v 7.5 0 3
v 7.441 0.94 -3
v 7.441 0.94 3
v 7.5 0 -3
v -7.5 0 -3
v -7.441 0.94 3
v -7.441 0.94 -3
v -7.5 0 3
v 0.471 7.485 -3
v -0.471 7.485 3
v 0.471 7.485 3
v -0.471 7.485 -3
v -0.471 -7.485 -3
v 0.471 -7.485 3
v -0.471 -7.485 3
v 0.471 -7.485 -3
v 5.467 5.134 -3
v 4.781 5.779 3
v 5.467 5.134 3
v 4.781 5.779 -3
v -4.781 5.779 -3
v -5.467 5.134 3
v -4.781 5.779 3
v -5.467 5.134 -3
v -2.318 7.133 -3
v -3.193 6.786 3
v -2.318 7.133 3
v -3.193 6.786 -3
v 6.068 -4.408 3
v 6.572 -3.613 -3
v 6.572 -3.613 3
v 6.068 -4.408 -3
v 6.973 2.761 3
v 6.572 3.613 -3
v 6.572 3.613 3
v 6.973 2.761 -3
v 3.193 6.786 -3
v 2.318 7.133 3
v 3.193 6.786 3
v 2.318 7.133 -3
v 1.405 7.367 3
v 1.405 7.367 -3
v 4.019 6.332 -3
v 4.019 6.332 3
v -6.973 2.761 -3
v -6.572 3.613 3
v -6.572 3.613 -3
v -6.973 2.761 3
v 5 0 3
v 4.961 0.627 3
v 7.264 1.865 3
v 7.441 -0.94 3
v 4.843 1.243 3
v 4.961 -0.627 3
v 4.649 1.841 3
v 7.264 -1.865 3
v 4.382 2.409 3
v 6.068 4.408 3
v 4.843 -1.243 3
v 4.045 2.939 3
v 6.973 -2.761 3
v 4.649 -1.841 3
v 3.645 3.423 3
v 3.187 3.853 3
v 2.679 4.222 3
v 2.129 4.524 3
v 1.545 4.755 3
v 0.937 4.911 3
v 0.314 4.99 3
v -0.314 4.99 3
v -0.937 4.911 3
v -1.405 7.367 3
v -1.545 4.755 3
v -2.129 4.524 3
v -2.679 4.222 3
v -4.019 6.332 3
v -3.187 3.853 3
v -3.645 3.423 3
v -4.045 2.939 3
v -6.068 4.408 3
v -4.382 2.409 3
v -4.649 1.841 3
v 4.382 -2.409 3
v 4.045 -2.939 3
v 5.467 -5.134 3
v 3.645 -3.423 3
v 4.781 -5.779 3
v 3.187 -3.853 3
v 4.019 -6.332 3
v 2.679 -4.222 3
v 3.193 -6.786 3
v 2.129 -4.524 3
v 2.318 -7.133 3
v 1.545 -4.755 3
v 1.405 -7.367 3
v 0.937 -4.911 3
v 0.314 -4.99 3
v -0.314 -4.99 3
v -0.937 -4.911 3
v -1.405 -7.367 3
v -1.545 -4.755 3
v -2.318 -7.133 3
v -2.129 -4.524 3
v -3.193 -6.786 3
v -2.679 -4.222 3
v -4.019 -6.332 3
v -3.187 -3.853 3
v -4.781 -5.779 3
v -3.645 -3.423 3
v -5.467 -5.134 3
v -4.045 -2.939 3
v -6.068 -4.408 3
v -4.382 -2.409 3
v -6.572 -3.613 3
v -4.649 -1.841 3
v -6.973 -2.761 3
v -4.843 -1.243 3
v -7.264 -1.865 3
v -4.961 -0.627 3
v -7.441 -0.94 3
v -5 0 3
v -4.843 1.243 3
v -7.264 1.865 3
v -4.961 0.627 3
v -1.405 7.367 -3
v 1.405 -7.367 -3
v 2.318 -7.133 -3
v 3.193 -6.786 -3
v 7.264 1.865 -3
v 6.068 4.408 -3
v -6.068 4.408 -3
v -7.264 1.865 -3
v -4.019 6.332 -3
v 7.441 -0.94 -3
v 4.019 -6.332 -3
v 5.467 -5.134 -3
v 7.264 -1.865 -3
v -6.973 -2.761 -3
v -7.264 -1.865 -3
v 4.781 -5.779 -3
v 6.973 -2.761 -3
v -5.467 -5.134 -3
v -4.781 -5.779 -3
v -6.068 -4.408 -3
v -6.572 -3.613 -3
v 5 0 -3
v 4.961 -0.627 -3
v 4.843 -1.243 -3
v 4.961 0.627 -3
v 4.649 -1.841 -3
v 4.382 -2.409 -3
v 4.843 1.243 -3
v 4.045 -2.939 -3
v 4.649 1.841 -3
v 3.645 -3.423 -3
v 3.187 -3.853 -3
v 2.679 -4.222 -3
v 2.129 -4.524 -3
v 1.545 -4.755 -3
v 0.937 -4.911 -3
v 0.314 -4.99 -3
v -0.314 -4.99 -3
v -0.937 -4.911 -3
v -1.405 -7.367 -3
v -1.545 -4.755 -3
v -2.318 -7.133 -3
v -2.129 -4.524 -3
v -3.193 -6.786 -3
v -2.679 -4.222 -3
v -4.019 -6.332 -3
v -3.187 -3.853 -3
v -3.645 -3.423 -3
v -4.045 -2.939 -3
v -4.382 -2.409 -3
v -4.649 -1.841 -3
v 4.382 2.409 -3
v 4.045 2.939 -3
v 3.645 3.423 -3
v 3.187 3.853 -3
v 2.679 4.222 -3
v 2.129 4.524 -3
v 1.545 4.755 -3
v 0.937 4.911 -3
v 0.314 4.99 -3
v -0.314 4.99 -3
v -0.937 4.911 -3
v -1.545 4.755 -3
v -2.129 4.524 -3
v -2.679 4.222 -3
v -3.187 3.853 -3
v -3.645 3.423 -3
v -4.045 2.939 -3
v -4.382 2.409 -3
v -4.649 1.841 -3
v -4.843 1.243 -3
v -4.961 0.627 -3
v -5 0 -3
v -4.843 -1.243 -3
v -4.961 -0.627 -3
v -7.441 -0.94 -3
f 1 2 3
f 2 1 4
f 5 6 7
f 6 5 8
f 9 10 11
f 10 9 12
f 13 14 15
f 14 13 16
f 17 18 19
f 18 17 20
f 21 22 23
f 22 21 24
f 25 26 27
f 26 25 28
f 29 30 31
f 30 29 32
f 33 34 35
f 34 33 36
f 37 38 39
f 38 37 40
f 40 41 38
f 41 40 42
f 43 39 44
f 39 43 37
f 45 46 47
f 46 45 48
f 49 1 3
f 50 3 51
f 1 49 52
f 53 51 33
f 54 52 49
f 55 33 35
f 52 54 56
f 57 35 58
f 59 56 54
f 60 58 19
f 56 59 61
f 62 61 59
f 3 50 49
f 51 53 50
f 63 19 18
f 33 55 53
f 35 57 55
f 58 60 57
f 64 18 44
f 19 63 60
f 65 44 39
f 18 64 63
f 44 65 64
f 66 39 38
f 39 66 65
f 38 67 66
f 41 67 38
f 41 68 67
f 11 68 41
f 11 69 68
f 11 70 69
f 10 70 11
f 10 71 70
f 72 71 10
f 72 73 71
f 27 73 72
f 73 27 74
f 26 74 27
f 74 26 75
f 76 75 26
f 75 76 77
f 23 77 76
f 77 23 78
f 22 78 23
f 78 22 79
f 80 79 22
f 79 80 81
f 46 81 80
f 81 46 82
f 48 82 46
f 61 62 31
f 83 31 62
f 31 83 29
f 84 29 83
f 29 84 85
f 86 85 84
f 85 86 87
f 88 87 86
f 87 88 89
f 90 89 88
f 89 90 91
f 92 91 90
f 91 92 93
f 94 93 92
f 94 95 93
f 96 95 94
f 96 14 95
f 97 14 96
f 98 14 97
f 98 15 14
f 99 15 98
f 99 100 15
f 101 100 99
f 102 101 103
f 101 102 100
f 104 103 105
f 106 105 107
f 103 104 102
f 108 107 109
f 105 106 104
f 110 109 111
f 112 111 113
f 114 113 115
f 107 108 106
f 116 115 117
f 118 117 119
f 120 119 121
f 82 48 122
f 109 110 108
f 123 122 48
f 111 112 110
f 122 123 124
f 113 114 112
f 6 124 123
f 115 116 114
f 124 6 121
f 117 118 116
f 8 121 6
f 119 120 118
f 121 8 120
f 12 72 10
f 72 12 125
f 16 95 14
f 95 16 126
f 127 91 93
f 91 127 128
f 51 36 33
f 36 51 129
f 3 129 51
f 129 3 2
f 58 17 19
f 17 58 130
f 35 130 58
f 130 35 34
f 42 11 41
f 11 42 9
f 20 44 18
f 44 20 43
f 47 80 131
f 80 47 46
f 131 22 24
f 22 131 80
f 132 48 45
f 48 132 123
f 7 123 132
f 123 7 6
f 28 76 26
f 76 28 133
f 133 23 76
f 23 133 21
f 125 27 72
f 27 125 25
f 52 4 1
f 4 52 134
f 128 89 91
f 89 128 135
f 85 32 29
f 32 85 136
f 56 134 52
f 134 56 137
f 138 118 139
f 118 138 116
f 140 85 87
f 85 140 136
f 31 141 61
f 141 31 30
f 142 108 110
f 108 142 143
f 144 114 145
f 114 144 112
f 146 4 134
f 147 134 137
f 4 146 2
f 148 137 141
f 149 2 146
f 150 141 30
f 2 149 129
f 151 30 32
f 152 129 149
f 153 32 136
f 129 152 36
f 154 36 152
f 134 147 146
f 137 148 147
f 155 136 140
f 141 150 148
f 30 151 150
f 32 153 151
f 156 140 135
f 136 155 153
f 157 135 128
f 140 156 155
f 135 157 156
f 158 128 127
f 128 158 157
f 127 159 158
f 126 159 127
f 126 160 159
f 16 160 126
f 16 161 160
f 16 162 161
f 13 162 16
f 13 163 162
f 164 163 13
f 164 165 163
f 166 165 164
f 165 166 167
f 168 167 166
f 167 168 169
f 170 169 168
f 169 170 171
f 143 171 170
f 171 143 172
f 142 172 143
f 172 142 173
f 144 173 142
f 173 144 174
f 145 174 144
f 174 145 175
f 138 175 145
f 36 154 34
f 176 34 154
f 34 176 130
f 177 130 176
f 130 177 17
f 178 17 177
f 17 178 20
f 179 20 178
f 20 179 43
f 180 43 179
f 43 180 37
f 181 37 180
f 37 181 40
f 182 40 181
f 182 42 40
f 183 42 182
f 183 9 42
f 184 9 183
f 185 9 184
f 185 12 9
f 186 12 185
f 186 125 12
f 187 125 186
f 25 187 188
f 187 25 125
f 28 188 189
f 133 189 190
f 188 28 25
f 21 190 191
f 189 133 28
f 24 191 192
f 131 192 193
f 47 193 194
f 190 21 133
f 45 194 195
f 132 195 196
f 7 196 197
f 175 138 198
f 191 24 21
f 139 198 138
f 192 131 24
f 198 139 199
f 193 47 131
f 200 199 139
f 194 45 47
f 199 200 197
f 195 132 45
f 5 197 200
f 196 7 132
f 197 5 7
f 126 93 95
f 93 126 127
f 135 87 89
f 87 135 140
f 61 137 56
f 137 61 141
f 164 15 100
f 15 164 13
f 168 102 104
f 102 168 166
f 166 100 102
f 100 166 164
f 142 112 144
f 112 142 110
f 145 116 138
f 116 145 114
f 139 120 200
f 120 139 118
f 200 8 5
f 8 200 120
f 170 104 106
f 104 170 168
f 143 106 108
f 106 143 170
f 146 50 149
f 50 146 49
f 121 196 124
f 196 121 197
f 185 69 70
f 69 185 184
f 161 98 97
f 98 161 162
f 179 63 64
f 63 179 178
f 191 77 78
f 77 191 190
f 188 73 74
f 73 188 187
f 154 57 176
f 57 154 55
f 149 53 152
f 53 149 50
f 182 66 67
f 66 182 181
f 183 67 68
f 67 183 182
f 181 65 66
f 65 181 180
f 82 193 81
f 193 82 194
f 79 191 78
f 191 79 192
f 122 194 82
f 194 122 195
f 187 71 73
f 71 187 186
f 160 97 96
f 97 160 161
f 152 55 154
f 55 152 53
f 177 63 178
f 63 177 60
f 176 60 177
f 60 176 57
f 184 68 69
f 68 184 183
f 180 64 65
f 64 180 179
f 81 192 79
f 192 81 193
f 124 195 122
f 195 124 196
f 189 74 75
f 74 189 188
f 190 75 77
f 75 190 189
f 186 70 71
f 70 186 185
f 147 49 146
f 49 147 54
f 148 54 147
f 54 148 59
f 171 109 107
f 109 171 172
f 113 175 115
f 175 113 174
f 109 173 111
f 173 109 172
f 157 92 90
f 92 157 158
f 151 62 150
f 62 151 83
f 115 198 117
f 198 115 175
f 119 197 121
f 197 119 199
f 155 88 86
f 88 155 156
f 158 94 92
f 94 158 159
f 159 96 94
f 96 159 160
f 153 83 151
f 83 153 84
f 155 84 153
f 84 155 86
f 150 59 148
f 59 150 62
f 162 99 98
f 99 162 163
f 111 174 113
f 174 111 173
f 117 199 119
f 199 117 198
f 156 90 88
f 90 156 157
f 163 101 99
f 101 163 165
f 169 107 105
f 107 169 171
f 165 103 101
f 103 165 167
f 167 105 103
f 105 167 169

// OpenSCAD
$fn = 50;


difference() {
	union() {
		translate(v = [0, 0, -3.0000000000]) {
			cylinder(h = 6, r = 7.5000000000);
		}
	}
	union() {
		translate(v = [0, 0, -100.0000000000]) {
			cylinder(h = 200, r = 5.0000000000);
		}
	}
}
